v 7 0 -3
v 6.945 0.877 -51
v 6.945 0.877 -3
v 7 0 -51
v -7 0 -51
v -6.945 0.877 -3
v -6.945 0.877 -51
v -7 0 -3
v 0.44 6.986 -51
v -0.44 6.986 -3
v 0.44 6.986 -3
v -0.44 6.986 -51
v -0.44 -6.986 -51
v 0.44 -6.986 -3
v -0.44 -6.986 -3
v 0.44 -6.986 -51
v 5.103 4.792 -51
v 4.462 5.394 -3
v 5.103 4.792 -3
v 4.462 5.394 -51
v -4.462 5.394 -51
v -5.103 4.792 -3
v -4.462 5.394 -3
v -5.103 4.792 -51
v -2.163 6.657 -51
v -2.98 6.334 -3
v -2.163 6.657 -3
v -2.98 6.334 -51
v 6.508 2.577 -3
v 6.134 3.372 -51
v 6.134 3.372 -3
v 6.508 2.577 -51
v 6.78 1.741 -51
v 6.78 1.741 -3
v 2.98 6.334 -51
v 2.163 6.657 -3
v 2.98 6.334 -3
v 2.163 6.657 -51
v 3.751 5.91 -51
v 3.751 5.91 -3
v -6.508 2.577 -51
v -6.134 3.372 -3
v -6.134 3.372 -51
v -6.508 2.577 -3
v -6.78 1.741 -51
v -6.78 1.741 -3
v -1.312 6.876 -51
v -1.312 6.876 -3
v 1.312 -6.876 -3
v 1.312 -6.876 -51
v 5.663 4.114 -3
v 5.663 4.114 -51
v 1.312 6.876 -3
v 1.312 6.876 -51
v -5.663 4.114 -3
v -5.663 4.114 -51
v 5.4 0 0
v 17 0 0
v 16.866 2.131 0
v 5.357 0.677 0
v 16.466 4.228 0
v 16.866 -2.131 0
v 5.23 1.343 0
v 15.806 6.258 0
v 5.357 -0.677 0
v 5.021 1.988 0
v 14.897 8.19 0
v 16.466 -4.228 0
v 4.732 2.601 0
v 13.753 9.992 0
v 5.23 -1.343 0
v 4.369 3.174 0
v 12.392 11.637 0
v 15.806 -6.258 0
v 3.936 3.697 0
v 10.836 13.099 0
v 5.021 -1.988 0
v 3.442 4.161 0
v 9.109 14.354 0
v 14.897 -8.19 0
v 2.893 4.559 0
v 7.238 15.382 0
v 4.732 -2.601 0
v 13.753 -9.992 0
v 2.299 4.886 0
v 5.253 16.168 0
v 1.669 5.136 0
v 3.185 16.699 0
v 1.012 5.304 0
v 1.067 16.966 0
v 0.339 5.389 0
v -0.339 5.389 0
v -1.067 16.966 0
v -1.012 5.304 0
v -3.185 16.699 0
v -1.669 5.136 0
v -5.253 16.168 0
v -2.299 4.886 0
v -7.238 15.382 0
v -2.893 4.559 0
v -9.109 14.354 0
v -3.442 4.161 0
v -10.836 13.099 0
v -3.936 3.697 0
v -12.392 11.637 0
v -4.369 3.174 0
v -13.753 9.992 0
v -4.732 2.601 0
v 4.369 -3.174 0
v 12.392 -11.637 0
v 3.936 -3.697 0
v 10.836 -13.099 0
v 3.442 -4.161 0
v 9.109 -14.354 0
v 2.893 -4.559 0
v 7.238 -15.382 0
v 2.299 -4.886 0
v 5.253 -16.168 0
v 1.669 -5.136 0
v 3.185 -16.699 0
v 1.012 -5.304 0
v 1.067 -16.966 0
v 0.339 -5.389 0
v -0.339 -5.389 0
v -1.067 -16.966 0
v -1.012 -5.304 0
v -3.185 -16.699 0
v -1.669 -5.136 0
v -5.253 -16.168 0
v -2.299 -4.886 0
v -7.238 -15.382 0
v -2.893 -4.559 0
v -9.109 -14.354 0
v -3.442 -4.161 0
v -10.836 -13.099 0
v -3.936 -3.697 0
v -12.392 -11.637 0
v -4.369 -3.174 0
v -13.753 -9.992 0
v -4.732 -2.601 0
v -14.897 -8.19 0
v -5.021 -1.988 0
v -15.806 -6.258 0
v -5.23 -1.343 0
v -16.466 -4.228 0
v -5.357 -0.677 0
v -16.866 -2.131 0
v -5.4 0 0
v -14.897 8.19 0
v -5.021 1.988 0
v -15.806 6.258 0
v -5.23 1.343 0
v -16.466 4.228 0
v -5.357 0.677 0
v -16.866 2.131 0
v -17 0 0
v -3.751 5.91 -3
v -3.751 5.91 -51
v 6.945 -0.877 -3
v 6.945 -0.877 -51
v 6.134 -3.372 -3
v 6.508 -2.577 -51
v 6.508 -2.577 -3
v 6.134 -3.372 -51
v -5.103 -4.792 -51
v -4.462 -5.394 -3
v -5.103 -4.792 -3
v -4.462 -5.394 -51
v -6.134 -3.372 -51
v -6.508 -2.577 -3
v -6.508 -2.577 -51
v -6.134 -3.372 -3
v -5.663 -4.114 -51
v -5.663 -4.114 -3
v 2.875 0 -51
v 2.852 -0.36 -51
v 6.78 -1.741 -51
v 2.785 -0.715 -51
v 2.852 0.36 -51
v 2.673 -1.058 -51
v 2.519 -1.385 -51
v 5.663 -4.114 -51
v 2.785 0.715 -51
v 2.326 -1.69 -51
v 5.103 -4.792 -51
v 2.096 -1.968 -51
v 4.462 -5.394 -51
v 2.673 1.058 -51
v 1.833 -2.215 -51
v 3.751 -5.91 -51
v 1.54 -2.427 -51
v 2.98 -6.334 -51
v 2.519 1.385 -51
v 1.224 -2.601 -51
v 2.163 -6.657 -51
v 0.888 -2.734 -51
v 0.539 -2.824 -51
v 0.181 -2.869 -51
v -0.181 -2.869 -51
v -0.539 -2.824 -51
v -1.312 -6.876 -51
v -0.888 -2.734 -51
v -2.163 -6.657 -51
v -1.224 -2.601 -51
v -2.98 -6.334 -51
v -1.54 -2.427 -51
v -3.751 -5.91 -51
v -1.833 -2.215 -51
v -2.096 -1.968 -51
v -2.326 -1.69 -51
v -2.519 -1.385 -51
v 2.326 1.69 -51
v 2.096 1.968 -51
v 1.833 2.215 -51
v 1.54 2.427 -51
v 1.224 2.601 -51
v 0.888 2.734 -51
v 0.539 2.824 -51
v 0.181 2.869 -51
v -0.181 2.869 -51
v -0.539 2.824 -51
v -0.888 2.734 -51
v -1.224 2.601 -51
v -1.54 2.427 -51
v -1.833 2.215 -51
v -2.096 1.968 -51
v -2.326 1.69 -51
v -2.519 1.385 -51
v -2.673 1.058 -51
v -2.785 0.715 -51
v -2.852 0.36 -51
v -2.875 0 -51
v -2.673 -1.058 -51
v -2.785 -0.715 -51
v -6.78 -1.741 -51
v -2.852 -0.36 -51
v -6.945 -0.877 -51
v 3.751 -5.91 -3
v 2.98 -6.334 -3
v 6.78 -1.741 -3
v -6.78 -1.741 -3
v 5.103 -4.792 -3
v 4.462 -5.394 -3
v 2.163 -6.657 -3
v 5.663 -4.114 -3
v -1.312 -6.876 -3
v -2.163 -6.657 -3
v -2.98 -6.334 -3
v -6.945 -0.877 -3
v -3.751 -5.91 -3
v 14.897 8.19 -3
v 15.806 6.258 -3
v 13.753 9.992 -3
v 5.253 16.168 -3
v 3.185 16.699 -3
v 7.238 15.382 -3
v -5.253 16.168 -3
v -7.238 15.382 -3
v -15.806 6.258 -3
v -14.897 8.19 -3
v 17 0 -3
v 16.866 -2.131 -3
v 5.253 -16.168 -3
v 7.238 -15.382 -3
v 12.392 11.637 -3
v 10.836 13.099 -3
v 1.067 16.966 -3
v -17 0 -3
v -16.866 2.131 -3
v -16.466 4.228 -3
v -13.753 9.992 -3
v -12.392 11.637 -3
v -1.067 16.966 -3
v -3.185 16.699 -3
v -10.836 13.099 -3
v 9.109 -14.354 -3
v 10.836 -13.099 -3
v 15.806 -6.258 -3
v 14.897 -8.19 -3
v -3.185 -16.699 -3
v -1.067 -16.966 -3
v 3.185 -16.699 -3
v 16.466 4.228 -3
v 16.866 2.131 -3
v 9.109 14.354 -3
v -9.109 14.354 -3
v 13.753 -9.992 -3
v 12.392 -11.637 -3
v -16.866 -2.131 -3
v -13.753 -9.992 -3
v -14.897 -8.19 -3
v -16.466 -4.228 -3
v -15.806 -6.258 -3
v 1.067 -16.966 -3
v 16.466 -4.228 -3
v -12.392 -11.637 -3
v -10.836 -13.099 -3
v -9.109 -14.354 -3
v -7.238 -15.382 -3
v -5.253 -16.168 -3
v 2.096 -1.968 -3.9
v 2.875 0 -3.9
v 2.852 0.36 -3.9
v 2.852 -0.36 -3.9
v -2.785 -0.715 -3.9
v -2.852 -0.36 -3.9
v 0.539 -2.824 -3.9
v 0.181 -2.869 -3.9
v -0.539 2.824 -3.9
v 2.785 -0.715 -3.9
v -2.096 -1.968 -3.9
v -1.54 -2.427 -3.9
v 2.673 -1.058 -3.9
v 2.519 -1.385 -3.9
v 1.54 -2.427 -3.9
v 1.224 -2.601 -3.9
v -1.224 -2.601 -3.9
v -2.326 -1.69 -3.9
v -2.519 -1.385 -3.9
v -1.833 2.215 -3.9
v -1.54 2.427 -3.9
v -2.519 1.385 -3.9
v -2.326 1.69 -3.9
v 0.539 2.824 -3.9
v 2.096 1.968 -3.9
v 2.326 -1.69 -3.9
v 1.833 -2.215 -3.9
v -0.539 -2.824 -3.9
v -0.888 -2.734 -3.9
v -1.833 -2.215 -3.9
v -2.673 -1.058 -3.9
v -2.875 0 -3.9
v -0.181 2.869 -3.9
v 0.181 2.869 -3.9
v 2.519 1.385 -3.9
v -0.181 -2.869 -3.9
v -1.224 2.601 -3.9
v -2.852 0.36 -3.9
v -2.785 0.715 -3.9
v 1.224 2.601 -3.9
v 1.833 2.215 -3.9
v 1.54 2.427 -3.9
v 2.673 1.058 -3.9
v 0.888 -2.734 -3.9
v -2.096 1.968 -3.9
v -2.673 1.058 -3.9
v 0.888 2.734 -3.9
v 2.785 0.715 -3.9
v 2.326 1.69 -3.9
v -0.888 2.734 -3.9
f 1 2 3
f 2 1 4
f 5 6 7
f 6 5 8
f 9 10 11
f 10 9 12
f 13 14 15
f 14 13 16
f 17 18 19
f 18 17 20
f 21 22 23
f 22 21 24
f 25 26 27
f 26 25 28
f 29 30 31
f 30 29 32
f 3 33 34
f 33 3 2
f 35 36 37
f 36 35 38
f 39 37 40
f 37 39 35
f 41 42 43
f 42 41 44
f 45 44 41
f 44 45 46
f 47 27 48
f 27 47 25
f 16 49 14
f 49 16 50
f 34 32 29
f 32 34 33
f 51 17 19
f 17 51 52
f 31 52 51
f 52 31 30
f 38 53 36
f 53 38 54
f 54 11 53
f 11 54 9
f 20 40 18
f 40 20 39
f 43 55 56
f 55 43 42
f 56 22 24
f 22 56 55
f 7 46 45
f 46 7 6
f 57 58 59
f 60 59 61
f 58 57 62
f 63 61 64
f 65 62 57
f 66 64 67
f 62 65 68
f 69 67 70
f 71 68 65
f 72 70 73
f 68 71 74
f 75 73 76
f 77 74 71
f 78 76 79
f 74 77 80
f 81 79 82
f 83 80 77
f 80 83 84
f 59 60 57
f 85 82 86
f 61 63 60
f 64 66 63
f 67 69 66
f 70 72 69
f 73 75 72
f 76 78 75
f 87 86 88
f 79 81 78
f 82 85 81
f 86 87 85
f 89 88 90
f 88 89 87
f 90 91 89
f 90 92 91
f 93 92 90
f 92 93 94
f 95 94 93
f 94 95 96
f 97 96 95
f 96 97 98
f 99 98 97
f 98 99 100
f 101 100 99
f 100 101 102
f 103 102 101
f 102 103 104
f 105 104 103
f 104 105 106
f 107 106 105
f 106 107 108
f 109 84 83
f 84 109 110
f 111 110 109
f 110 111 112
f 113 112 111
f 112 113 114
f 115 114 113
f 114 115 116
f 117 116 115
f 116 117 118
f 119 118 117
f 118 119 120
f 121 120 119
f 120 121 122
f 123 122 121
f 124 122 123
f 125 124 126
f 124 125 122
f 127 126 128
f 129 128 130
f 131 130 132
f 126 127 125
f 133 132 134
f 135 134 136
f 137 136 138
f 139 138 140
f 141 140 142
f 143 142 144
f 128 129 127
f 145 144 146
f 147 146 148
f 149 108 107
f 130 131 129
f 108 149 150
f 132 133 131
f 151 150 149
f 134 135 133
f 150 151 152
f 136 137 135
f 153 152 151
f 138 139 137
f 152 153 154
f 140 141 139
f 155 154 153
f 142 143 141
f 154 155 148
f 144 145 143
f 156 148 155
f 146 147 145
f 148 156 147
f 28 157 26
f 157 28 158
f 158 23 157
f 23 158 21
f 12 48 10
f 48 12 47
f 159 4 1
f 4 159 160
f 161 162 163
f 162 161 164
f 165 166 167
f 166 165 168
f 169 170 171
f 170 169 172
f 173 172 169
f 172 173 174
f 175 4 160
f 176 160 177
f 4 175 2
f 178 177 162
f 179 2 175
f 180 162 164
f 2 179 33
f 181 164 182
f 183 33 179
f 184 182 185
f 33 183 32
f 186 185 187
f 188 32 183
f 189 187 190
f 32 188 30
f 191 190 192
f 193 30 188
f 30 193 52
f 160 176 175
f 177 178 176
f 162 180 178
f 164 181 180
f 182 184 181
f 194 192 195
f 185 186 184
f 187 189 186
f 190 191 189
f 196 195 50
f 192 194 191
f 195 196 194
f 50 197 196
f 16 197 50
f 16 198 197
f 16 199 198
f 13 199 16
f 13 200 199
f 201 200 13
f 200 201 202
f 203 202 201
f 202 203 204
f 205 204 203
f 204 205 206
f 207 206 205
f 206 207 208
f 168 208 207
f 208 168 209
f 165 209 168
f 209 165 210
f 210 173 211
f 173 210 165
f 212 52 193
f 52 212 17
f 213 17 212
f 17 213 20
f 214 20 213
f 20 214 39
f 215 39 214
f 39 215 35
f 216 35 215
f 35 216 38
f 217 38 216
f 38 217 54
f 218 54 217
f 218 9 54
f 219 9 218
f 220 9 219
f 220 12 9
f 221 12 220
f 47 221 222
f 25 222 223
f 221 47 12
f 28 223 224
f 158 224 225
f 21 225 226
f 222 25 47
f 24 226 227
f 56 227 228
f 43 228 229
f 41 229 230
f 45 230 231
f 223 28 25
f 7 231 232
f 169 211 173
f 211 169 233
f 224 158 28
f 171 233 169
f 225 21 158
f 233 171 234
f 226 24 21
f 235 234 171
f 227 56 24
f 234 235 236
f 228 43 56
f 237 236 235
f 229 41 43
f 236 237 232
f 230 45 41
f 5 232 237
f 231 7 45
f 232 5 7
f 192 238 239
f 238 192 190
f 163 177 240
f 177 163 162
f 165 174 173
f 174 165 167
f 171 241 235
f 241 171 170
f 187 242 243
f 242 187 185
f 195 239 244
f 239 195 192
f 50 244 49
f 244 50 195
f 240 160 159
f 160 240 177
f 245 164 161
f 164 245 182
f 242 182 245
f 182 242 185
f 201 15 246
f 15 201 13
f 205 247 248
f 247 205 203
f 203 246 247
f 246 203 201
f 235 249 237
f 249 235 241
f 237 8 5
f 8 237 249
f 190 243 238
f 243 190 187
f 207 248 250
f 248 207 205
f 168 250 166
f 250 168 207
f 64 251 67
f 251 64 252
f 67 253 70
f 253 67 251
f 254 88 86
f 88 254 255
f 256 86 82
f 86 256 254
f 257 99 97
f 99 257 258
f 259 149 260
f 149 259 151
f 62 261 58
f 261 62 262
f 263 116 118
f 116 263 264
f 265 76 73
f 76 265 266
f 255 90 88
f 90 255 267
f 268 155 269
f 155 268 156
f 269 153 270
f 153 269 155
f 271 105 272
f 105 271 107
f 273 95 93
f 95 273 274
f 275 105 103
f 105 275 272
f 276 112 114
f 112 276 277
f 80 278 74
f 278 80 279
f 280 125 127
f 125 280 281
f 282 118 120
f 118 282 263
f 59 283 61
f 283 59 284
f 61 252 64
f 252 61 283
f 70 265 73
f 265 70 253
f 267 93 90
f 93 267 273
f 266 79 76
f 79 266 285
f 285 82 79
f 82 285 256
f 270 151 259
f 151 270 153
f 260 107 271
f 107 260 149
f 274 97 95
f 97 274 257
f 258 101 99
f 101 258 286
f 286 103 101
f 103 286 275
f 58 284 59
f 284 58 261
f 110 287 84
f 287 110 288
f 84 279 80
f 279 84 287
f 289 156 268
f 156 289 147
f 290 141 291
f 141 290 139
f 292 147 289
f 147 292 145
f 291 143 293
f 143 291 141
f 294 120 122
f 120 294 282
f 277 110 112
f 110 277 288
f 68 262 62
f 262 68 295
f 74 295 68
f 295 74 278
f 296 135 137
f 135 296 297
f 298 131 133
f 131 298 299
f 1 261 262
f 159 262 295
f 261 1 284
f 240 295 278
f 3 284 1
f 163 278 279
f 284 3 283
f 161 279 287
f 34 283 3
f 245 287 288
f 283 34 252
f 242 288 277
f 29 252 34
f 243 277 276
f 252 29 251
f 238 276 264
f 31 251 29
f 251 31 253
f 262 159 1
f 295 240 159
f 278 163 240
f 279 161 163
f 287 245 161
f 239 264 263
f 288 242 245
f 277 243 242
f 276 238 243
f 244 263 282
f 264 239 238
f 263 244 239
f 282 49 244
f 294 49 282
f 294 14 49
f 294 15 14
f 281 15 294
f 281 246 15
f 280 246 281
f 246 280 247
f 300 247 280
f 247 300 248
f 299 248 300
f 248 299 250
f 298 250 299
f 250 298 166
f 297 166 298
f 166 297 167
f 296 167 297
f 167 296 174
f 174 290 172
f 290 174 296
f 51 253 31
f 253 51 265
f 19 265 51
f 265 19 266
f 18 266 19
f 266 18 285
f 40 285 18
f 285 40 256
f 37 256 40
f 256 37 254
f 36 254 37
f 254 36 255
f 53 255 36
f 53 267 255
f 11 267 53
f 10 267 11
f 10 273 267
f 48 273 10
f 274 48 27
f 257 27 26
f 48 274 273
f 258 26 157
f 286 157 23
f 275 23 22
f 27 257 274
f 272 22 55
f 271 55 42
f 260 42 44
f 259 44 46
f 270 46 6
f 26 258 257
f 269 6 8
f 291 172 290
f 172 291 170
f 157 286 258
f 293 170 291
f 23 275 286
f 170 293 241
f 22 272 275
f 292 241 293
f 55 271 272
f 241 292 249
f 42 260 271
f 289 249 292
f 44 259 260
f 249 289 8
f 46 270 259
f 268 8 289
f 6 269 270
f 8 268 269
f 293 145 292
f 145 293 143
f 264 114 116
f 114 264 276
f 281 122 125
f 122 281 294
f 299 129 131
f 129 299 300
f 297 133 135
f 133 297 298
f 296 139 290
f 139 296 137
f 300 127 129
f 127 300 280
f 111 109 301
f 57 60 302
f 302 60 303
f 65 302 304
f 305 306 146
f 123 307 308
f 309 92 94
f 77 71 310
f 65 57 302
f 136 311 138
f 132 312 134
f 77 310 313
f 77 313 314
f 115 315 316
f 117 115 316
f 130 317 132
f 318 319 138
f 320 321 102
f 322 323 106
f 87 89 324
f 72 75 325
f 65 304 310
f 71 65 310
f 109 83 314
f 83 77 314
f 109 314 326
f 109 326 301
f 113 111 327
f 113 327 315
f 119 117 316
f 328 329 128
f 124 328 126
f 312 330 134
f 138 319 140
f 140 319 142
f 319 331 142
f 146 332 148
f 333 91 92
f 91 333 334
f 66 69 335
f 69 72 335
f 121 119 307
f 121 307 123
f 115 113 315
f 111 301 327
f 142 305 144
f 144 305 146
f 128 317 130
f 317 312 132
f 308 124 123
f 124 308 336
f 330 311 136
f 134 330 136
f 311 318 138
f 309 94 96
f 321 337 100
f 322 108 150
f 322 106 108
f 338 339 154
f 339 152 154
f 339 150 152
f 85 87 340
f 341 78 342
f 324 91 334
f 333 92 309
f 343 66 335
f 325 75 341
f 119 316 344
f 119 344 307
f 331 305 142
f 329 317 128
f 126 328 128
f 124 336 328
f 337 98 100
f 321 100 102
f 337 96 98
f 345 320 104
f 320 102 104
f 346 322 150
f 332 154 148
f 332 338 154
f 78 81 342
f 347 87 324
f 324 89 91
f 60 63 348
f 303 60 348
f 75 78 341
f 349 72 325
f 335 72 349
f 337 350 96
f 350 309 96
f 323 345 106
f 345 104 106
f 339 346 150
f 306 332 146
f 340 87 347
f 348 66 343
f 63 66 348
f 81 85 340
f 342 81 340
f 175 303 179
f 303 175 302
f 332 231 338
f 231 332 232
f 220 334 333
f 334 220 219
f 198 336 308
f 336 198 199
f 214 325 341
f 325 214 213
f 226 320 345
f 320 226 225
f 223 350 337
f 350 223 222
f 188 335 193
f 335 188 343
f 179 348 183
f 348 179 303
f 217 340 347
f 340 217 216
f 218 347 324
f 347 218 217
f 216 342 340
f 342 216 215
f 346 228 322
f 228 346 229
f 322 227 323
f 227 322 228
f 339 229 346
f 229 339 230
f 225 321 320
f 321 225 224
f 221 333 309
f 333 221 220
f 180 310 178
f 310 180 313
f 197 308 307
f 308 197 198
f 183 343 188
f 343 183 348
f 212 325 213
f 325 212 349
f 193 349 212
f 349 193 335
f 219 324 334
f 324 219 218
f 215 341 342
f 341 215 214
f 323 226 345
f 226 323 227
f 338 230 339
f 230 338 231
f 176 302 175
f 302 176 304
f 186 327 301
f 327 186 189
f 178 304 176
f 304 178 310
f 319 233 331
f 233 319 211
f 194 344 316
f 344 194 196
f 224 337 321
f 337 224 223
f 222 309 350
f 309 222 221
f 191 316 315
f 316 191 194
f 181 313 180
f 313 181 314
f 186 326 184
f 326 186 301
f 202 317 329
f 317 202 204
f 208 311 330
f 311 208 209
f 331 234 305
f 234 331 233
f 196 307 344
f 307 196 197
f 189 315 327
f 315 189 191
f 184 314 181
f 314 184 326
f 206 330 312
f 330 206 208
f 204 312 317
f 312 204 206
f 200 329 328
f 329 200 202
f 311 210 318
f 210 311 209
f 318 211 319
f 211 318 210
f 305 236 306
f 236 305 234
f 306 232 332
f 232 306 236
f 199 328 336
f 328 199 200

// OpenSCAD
$fn = 50;


difference() {
	union() {
		translate(v = [0, 0, -51.0000000000]) {
			cylinder(h = 51, r = 7.0000000000);
		}
		translate(v = [0, 0, -3.0000000000]) {
			cylinder(h = 3, r = 17.0000000000);
		}
	}
	union() {
		translate(v = [0, 0, 0]) {
			rotate(a = [0, 0, 0]) {
				difference() {
					union() {
						#translate(v = [0, 0, -51.0000000000]) {
							cylinder(h = 51, r = 2.6000000000);
						}
						#translate(v = [0, 0, -3.9000000000]) {
							cylinder(h = 3.9000000000, r = 7.0000000000, r1 = 2.8750000000, r2 = 5.4000000000);
						}
						#translate(v = [0, 0, -51.0000000000]) {
							cylinder(h = 51, r = 2.8750000000);
						}
						#translate(v = [0, 0, -51.0000000000]) {
							cylinder(h = 51, r = 2.6000000000);
						}
					}
					union();
				}
			}
		}
	}
}
